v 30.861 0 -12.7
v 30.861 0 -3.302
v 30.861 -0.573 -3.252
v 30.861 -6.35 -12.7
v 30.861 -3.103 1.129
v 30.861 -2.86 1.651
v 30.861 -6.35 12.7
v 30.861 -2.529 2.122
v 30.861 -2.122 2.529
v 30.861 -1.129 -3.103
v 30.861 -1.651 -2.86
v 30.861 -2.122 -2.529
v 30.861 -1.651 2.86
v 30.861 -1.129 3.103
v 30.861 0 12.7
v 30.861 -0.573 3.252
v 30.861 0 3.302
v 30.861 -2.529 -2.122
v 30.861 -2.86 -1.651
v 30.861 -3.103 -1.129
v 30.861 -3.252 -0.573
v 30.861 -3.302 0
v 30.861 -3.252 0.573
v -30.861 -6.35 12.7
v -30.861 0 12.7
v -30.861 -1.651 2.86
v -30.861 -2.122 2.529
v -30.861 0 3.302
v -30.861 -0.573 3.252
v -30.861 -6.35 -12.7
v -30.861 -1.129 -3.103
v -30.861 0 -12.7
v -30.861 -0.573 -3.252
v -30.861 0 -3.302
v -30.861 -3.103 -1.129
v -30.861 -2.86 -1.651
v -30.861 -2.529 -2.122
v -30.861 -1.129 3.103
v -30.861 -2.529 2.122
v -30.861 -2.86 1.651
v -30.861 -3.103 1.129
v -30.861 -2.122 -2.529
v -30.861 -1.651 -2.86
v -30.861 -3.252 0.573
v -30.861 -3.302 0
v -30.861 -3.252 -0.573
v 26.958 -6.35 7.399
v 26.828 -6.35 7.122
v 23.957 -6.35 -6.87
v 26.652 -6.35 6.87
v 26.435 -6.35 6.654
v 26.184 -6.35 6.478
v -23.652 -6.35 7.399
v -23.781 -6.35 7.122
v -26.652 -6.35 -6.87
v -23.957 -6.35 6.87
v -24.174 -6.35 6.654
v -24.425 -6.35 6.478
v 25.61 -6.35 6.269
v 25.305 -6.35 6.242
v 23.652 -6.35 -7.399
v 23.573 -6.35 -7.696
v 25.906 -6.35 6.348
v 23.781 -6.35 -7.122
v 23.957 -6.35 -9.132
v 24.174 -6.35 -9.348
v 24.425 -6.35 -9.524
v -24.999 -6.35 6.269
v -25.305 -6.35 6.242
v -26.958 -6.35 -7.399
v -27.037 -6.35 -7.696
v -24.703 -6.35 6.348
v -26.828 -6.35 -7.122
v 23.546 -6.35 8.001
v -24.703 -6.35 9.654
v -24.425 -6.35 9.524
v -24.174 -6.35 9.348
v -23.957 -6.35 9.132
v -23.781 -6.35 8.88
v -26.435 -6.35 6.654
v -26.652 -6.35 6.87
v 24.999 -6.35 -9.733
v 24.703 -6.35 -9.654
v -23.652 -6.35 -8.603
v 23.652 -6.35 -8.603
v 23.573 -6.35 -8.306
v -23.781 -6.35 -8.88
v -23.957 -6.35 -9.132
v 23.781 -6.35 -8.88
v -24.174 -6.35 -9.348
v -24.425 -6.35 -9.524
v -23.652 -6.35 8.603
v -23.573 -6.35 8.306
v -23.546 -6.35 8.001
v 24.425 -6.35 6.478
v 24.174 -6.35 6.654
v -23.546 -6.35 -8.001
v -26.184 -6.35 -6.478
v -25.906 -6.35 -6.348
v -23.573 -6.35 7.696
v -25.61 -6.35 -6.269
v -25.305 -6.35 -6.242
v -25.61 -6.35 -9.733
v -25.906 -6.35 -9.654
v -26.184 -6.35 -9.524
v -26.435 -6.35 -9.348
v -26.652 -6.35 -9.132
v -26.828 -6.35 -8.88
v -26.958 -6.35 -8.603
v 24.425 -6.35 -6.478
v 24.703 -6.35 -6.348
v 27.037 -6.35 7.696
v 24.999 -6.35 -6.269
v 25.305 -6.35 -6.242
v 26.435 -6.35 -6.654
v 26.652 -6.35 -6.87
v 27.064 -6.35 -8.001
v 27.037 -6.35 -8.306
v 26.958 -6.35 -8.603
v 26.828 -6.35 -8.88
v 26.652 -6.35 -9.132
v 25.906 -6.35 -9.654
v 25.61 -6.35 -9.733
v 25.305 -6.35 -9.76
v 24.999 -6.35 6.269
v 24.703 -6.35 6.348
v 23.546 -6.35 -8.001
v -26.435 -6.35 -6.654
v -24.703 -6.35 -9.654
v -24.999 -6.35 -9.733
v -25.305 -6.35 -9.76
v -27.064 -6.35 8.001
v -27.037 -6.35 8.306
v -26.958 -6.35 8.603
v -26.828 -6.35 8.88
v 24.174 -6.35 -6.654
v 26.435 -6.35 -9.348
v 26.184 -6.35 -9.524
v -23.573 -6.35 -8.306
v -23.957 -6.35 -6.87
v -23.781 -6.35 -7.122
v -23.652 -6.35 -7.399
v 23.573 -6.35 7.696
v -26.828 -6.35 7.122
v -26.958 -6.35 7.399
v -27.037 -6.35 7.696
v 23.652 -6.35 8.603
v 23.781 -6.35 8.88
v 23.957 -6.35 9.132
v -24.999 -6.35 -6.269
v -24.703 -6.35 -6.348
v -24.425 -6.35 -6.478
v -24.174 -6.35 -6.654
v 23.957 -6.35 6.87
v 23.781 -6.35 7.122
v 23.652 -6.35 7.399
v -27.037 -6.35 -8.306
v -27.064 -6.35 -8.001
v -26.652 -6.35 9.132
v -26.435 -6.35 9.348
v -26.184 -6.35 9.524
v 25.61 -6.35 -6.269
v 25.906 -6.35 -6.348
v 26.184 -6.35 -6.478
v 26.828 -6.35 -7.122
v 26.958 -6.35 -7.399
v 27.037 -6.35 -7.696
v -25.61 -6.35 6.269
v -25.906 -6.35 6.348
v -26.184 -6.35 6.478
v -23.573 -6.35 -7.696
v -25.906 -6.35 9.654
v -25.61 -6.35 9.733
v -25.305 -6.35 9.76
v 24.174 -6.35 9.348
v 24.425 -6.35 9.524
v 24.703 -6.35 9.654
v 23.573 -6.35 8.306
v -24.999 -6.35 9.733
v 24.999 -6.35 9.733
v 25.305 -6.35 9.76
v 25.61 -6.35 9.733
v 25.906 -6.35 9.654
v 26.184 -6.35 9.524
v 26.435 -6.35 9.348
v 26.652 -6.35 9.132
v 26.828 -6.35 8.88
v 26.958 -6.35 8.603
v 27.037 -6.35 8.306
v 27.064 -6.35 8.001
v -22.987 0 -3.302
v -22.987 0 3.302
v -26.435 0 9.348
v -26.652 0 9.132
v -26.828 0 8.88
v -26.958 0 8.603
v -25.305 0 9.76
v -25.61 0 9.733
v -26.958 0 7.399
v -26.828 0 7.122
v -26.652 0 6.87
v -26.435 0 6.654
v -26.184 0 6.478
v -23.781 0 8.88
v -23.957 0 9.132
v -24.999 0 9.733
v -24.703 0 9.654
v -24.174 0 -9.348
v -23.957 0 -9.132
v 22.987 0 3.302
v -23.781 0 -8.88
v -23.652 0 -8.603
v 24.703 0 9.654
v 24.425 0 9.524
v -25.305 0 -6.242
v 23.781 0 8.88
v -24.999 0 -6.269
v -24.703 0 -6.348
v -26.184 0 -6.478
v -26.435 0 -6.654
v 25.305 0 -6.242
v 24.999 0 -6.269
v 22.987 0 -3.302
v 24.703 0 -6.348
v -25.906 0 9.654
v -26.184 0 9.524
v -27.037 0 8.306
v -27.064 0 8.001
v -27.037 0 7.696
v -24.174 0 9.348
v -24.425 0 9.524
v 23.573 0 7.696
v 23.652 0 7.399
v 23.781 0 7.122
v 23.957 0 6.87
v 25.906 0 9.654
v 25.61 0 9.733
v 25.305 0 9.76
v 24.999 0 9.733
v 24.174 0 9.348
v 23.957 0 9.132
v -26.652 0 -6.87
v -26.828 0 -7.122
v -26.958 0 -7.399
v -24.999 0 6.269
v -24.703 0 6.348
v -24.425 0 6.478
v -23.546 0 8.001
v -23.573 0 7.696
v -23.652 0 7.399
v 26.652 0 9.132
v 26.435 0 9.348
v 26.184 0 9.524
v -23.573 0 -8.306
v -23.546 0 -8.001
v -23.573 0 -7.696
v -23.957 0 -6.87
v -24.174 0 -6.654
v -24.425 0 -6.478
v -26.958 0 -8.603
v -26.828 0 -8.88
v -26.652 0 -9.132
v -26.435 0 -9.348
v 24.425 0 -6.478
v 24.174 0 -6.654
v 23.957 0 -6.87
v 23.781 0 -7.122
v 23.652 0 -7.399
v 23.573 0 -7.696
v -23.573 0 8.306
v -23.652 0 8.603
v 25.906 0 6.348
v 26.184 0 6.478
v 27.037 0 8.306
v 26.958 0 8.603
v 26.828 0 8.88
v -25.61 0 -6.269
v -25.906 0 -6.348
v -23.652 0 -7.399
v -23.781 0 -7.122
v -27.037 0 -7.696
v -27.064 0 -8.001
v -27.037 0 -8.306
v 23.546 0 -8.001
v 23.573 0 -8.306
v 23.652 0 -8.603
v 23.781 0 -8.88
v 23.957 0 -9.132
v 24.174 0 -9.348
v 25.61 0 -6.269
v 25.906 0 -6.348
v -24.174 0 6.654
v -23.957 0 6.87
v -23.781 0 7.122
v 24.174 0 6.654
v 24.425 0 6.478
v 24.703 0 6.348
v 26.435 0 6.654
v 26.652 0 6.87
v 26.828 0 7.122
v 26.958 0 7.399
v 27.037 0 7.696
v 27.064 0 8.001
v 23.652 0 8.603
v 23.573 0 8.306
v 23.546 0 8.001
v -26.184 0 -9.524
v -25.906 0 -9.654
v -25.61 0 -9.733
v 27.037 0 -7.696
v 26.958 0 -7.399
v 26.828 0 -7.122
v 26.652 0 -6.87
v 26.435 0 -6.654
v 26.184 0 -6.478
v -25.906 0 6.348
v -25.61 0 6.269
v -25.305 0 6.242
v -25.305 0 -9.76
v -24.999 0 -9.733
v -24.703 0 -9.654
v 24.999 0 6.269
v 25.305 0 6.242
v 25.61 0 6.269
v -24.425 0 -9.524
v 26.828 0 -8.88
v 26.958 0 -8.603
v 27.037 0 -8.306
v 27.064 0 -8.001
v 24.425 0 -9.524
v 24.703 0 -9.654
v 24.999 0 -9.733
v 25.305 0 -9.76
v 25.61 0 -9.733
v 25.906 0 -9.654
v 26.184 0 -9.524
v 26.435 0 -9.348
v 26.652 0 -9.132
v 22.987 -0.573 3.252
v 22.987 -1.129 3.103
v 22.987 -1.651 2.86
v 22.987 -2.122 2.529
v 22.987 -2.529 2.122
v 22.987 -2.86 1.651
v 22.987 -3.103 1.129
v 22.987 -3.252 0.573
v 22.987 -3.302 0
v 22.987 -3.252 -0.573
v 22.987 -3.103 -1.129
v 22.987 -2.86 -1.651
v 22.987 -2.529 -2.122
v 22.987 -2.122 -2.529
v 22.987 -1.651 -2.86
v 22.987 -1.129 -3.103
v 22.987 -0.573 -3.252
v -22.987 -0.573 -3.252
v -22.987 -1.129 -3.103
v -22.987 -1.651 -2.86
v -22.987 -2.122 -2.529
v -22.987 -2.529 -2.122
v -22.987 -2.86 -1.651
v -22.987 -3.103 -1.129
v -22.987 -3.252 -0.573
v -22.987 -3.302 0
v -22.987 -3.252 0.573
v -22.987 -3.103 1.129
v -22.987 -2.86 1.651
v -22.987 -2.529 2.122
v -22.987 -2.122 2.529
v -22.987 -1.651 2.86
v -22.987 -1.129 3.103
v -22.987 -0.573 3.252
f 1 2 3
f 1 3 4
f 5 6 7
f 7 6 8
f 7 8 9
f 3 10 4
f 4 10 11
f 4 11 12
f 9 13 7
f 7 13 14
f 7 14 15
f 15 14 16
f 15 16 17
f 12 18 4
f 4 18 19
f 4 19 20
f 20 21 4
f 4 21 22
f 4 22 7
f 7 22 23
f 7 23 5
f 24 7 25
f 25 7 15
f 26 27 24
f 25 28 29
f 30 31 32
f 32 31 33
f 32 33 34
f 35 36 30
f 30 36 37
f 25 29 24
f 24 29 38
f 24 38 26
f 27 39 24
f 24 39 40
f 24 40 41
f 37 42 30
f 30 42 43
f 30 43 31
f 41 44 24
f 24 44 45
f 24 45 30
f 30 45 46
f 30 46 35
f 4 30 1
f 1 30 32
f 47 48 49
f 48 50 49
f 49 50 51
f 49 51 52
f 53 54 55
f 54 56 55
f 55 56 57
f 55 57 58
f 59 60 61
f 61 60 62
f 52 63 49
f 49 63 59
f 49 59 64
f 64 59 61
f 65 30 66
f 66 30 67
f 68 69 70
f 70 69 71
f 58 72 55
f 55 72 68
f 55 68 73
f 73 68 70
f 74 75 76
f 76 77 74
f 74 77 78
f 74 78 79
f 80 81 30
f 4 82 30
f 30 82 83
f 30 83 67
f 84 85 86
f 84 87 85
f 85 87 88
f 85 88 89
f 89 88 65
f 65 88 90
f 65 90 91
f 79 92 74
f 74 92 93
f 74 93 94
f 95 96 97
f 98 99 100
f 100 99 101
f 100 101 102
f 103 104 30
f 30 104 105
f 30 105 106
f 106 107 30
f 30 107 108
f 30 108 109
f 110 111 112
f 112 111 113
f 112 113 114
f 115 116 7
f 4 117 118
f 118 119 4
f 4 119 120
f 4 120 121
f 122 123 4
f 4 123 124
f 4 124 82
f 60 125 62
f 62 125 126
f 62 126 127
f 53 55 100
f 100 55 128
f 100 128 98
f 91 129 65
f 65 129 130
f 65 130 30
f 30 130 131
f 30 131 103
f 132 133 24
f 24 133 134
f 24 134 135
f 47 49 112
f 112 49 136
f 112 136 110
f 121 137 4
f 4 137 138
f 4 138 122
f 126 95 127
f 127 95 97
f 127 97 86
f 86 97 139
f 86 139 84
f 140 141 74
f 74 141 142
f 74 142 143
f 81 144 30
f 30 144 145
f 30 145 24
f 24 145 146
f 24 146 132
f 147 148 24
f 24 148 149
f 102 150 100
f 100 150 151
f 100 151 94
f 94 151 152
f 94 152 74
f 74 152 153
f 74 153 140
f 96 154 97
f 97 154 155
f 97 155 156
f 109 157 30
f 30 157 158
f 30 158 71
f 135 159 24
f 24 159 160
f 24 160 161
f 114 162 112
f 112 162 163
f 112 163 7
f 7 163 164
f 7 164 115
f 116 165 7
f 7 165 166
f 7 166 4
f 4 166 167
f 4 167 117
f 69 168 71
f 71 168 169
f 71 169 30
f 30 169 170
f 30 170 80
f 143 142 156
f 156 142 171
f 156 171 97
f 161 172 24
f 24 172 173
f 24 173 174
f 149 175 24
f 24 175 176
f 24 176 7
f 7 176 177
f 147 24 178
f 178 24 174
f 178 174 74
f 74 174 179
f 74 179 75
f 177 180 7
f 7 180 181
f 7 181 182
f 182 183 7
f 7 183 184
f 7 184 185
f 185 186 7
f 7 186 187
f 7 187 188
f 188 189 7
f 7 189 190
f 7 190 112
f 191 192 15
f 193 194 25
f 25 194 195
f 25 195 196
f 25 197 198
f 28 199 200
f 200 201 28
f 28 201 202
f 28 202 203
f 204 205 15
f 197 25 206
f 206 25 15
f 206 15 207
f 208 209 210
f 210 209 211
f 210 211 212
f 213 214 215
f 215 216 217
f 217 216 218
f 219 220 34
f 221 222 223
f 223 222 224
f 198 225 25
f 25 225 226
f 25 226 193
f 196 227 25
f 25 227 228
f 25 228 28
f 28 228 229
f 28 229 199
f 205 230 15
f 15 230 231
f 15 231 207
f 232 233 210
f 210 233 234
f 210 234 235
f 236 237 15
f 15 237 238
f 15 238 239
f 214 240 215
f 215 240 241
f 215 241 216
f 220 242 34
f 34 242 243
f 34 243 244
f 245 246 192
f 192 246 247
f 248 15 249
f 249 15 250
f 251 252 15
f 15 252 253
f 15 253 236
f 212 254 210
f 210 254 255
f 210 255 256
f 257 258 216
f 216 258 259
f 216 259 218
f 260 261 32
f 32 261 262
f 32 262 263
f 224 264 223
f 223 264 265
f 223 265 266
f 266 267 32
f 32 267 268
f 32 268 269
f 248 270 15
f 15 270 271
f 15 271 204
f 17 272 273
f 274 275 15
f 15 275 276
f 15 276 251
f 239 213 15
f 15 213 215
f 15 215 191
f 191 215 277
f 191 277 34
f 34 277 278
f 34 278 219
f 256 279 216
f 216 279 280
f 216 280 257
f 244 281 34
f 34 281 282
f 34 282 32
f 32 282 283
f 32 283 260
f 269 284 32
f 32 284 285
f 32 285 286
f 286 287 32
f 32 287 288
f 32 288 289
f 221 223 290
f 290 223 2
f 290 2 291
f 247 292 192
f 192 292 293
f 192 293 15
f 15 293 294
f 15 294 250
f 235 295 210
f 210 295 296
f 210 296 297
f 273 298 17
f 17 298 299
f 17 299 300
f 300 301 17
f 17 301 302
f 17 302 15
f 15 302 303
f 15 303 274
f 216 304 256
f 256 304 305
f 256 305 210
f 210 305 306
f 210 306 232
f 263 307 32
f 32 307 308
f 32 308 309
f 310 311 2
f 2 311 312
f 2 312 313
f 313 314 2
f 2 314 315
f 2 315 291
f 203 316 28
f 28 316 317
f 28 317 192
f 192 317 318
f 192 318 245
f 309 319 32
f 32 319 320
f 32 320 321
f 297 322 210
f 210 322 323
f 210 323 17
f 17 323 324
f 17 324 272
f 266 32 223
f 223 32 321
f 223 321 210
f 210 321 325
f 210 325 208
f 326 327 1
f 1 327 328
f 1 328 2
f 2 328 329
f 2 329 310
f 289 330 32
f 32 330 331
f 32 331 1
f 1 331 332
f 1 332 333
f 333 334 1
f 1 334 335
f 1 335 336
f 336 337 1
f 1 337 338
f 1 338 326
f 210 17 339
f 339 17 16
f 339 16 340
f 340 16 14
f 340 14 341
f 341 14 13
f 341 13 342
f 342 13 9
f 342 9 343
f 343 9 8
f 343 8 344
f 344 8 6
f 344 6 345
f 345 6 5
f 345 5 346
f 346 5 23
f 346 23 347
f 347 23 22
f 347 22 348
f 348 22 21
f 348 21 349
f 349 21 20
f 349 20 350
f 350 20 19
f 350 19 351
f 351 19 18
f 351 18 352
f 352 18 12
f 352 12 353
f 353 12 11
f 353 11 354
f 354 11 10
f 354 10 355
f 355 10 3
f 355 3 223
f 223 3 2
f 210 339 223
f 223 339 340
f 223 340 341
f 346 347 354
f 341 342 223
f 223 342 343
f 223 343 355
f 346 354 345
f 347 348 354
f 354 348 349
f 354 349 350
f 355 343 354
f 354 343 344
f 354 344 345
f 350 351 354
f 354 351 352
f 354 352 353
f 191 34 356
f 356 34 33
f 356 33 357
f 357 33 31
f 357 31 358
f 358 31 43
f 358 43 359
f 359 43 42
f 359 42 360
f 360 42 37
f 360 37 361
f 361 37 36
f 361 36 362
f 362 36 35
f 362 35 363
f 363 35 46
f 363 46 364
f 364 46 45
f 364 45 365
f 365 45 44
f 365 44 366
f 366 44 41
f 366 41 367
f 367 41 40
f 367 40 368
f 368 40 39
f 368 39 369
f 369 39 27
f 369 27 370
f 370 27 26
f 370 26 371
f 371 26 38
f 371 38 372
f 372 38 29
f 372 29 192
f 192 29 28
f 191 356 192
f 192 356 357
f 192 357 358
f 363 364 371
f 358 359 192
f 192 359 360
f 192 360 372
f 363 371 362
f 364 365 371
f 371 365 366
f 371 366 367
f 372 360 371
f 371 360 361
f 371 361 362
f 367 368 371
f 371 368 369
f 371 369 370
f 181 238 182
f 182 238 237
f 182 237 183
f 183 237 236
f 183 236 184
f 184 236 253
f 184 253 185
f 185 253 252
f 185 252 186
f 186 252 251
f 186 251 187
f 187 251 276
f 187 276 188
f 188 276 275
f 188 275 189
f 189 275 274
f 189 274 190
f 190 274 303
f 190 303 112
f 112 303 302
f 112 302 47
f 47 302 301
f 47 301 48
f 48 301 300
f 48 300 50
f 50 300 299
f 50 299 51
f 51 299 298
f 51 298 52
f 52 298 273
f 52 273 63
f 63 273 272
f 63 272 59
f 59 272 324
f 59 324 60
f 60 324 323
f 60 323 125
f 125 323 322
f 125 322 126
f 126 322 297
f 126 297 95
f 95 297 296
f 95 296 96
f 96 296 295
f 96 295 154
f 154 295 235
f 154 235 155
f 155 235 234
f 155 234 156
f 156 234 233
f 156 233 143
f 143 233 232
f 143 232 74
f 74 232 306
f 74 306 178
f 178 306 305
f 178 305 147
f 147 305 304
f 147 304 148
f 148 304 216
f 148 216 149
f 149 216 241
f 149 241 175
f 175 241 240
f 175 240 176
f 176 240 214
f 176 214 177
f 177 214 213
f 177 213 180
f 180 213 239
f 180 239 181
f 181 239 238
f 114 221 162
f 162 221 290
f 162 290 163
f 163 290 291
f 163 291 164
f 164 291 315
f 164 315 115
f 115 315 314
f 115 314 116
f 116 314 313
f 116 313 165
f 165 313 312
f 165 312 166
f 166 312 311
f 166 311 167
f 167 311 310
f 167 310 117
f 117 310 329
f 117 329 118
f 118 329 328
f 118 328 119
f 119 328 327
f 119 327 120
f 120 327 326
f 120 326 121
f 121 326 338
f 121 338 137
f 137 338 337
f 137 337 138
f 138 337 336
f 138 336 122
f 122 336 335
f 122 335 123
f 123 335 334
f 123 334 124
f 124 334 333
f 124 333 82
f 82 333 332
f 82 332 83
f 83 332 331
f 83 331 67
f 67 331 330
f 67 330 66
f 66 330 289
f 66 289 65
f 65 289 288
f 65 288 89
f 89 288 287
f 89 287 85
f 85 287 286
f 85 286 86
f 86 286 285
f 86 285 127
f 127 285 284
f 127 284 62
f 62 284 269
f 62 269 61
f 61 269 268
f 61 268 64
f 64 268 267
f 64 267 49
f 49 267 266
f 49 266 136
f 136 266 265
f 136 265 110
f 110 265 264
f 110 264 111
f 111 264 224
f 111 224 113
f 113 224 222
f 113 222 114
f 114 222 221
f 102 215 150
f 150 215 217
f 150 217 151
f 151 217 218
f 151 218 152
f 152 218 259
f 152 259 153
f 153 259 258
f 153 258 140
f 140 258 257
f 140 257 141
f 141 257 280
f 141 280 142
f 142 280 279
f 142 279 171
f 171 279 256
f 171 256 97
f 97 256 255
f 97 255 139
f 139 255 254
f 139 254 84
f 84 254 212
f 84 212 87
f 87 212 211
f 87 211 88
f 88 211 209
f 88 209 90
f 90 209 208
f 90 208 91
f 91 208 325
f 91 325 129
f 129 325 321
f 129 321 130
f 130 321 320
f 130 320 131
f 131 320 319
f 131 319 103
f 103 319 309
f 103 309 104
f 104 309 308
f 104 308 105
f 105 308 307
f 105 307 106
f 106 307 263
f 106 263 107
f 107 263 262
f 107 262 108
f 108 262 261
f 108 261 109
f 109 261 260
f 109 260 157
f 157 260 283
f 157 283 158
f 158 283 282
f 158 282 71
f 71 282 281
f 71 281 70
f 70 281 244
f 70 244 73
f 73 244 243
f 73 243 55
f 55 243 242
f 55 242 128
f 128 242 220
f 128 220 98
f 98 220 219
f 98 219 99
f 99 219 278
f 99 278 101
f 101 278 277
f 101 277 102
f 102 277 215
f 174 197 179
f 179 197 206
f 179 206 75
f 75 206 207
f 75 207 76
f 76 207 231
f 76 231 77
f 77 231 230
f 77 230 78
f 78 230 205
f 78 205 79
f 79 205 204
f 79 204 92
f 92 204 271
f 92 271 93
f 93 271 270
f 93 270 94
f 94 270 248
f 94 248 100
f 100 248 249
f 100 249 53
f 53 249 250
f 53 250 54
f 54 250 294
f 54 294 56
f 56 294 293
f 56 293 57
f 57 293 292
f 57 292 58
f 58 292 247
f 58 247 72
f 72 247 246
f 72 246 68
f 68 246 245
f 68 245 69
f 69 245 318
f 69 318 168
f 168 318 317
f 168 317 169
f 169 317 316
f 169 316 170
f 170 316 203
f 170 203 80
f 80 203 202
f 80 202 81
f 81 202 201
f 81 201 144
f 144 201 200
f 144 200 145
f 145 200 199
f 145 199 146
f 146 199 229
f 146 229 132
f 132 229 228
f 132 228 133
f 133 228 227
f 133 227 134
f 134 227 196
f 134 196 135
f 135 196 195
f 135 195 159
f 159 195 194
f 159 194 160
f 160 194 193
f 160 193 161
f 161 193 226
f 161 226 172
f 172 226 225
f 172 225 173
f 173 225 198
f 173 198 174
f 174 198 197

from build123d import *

# Parameters (mm, degrees)
SKETCH1_W           = 61.722
SKETCH1_H           = 25.4
BOSS_EXTRUDE1_DEPTH = 6.35
SKETCH2_R           = 3.302
CUT_EXTRUDE1_DEPTH  = 7.874
CUT_EXTRUDE2_START  = -7.874
SKETCH3_R           = 3.302
CUT_EXTRUDE2_DEPTH  = 7.874
CUT_EXTRUDE11_REACH = 35.971
SKETCH4_R           = 1.75895


with BuildPart() as part:
    # Sketch1 → Boss-Extrude1 (new body)
    with BuildSketch(Plane(origin=(0, 0, 0), x_dir=(1, 0, 0), z_dir=(0, 1, 0))):
        Rectangle(SKETCH1_W, SKETCH1_H)
    extrude(amount=-BOSS_EXTRUDE1_DEPTH)

    # Sketch2 → Cut-Extrude1 (cut)
    with BuildSketch(Plane(origin=(30.861, 0, 0), x_dir=(0, 0, -1), z_dir=(1, 0, 0))):
        Circle(SKETCH2_R)
    extrude(amount=-CUT_EXTRUDE1_DEPTH, mode=Mode.SUBTRACT)

    # Sketch3 → Cut-Extrude2 (cut)
    with BuildSketch(Plane.ZY.offset(30.861).offset(CUT_EXTRUDE2_START)):
        Circle(SKETCH3_R)
    extrude(amount=CUT_EXTRUDE2_DEPTH, mode=Mode.SUBTRACT)

    # Sketch4 → Cut-Extrude11 (cut, up to next)
    with BuildSketch(Plane(origin=(0, 0, 0), x_dir=(1, 0, 0), z_dir=(0, 1, 0)), mode=Mode.PRIVATE) as cut_extrude11_sk1:
        with Locations(Location((25.30475, -8.001, 0), (0, 0, 270))):
            Circle(SKETCH4_R)
    cut_extrude11_tool1 = extrude(cut_extrude11_sk1.sketch, amount=-CUT_EXTRUDE11_REACH, mode=Mode.PRIVATE) & part.part
    # Sketch4 → Cut-Extrude11 (cut, up to next)
    with BuildSketch(Plane(origin=(0, 0, 0), x_dir=(1, 0, 0), z_dir=(0, 1, 0)), mode=Mode.PRIVATE) as cut_extrude11_sk2:
        with Locations(Location((25.30475, 8.001, 0), (0, 0, 270))):
            Circle(SKETCH4_R)
    cut_extrude11_tool2 = extrude(cut_extrude11_sk2.sketch, amount=-CUT_EXTRUDE11_REACH, mode=Mode.PRIVATE) & part.part
    # Sketch4 → Cut-Extrude11 (cut, up to next)
    with BuildSketch(Plane(origin=(0, 0, 0), x_dir=(1, 0, 0), z_dir=(0, 1, 0)), mode=Mode.PRIVATE) as cut_extrude11_sk3:
        with Locations(Location((-25.30475, 8.001, 0), (0, 0, 270))):
            Circle(SKETCH4_R)
    cut_extrude11_tool3 = extrude(cut_extrude11_sk3.sketch, amount=-CUT_EXTRUDE11_REACH, mode=Mode.PRIVATE) & part.part
    # Sketch4 → Cut-Extrude11 (cut, up to next)
    with BuildSketch(Plane(origin=(0, 0, 0), x_dir=(1, 0, 0), z_dir=(0, 1, 0)), mode=Mode.PRIVATE) as cut_extrude11_sk4:
        with Locations(Location((-25.30475, -8.001, 0), (0, 0, 270))):
            Circle(SKETCH4_R)
    cut_extrude11_tool4 = extrude(cut_extrude11_sk4.sketch, amount=-CUT_EXTRUDE11_REACH, mode=Mode.PRIVATE) & part.part
    add(cut_extrude11_tool1.solids().sort_by_distance((25.30475, 0, 8.001))[0], mode=Mode.SUBTRACT)
    add(cut_extrude11_tool2.solids().sort_by_distance((25.30475, 0, -8.001))[0], mode=Mode.SUBTRACT)
    add(cut_extrude11_tool3.solids().sort_by_distance((-25.30475, 0, -8.001))[0], mode=Mode.SUBTRACT)
    add(cut_extrude11_tool4.solids().sort_by_distance((-25.30475, 0, 8.001))[0], mode=Mode.SUBTRACT)


solid = part.part
